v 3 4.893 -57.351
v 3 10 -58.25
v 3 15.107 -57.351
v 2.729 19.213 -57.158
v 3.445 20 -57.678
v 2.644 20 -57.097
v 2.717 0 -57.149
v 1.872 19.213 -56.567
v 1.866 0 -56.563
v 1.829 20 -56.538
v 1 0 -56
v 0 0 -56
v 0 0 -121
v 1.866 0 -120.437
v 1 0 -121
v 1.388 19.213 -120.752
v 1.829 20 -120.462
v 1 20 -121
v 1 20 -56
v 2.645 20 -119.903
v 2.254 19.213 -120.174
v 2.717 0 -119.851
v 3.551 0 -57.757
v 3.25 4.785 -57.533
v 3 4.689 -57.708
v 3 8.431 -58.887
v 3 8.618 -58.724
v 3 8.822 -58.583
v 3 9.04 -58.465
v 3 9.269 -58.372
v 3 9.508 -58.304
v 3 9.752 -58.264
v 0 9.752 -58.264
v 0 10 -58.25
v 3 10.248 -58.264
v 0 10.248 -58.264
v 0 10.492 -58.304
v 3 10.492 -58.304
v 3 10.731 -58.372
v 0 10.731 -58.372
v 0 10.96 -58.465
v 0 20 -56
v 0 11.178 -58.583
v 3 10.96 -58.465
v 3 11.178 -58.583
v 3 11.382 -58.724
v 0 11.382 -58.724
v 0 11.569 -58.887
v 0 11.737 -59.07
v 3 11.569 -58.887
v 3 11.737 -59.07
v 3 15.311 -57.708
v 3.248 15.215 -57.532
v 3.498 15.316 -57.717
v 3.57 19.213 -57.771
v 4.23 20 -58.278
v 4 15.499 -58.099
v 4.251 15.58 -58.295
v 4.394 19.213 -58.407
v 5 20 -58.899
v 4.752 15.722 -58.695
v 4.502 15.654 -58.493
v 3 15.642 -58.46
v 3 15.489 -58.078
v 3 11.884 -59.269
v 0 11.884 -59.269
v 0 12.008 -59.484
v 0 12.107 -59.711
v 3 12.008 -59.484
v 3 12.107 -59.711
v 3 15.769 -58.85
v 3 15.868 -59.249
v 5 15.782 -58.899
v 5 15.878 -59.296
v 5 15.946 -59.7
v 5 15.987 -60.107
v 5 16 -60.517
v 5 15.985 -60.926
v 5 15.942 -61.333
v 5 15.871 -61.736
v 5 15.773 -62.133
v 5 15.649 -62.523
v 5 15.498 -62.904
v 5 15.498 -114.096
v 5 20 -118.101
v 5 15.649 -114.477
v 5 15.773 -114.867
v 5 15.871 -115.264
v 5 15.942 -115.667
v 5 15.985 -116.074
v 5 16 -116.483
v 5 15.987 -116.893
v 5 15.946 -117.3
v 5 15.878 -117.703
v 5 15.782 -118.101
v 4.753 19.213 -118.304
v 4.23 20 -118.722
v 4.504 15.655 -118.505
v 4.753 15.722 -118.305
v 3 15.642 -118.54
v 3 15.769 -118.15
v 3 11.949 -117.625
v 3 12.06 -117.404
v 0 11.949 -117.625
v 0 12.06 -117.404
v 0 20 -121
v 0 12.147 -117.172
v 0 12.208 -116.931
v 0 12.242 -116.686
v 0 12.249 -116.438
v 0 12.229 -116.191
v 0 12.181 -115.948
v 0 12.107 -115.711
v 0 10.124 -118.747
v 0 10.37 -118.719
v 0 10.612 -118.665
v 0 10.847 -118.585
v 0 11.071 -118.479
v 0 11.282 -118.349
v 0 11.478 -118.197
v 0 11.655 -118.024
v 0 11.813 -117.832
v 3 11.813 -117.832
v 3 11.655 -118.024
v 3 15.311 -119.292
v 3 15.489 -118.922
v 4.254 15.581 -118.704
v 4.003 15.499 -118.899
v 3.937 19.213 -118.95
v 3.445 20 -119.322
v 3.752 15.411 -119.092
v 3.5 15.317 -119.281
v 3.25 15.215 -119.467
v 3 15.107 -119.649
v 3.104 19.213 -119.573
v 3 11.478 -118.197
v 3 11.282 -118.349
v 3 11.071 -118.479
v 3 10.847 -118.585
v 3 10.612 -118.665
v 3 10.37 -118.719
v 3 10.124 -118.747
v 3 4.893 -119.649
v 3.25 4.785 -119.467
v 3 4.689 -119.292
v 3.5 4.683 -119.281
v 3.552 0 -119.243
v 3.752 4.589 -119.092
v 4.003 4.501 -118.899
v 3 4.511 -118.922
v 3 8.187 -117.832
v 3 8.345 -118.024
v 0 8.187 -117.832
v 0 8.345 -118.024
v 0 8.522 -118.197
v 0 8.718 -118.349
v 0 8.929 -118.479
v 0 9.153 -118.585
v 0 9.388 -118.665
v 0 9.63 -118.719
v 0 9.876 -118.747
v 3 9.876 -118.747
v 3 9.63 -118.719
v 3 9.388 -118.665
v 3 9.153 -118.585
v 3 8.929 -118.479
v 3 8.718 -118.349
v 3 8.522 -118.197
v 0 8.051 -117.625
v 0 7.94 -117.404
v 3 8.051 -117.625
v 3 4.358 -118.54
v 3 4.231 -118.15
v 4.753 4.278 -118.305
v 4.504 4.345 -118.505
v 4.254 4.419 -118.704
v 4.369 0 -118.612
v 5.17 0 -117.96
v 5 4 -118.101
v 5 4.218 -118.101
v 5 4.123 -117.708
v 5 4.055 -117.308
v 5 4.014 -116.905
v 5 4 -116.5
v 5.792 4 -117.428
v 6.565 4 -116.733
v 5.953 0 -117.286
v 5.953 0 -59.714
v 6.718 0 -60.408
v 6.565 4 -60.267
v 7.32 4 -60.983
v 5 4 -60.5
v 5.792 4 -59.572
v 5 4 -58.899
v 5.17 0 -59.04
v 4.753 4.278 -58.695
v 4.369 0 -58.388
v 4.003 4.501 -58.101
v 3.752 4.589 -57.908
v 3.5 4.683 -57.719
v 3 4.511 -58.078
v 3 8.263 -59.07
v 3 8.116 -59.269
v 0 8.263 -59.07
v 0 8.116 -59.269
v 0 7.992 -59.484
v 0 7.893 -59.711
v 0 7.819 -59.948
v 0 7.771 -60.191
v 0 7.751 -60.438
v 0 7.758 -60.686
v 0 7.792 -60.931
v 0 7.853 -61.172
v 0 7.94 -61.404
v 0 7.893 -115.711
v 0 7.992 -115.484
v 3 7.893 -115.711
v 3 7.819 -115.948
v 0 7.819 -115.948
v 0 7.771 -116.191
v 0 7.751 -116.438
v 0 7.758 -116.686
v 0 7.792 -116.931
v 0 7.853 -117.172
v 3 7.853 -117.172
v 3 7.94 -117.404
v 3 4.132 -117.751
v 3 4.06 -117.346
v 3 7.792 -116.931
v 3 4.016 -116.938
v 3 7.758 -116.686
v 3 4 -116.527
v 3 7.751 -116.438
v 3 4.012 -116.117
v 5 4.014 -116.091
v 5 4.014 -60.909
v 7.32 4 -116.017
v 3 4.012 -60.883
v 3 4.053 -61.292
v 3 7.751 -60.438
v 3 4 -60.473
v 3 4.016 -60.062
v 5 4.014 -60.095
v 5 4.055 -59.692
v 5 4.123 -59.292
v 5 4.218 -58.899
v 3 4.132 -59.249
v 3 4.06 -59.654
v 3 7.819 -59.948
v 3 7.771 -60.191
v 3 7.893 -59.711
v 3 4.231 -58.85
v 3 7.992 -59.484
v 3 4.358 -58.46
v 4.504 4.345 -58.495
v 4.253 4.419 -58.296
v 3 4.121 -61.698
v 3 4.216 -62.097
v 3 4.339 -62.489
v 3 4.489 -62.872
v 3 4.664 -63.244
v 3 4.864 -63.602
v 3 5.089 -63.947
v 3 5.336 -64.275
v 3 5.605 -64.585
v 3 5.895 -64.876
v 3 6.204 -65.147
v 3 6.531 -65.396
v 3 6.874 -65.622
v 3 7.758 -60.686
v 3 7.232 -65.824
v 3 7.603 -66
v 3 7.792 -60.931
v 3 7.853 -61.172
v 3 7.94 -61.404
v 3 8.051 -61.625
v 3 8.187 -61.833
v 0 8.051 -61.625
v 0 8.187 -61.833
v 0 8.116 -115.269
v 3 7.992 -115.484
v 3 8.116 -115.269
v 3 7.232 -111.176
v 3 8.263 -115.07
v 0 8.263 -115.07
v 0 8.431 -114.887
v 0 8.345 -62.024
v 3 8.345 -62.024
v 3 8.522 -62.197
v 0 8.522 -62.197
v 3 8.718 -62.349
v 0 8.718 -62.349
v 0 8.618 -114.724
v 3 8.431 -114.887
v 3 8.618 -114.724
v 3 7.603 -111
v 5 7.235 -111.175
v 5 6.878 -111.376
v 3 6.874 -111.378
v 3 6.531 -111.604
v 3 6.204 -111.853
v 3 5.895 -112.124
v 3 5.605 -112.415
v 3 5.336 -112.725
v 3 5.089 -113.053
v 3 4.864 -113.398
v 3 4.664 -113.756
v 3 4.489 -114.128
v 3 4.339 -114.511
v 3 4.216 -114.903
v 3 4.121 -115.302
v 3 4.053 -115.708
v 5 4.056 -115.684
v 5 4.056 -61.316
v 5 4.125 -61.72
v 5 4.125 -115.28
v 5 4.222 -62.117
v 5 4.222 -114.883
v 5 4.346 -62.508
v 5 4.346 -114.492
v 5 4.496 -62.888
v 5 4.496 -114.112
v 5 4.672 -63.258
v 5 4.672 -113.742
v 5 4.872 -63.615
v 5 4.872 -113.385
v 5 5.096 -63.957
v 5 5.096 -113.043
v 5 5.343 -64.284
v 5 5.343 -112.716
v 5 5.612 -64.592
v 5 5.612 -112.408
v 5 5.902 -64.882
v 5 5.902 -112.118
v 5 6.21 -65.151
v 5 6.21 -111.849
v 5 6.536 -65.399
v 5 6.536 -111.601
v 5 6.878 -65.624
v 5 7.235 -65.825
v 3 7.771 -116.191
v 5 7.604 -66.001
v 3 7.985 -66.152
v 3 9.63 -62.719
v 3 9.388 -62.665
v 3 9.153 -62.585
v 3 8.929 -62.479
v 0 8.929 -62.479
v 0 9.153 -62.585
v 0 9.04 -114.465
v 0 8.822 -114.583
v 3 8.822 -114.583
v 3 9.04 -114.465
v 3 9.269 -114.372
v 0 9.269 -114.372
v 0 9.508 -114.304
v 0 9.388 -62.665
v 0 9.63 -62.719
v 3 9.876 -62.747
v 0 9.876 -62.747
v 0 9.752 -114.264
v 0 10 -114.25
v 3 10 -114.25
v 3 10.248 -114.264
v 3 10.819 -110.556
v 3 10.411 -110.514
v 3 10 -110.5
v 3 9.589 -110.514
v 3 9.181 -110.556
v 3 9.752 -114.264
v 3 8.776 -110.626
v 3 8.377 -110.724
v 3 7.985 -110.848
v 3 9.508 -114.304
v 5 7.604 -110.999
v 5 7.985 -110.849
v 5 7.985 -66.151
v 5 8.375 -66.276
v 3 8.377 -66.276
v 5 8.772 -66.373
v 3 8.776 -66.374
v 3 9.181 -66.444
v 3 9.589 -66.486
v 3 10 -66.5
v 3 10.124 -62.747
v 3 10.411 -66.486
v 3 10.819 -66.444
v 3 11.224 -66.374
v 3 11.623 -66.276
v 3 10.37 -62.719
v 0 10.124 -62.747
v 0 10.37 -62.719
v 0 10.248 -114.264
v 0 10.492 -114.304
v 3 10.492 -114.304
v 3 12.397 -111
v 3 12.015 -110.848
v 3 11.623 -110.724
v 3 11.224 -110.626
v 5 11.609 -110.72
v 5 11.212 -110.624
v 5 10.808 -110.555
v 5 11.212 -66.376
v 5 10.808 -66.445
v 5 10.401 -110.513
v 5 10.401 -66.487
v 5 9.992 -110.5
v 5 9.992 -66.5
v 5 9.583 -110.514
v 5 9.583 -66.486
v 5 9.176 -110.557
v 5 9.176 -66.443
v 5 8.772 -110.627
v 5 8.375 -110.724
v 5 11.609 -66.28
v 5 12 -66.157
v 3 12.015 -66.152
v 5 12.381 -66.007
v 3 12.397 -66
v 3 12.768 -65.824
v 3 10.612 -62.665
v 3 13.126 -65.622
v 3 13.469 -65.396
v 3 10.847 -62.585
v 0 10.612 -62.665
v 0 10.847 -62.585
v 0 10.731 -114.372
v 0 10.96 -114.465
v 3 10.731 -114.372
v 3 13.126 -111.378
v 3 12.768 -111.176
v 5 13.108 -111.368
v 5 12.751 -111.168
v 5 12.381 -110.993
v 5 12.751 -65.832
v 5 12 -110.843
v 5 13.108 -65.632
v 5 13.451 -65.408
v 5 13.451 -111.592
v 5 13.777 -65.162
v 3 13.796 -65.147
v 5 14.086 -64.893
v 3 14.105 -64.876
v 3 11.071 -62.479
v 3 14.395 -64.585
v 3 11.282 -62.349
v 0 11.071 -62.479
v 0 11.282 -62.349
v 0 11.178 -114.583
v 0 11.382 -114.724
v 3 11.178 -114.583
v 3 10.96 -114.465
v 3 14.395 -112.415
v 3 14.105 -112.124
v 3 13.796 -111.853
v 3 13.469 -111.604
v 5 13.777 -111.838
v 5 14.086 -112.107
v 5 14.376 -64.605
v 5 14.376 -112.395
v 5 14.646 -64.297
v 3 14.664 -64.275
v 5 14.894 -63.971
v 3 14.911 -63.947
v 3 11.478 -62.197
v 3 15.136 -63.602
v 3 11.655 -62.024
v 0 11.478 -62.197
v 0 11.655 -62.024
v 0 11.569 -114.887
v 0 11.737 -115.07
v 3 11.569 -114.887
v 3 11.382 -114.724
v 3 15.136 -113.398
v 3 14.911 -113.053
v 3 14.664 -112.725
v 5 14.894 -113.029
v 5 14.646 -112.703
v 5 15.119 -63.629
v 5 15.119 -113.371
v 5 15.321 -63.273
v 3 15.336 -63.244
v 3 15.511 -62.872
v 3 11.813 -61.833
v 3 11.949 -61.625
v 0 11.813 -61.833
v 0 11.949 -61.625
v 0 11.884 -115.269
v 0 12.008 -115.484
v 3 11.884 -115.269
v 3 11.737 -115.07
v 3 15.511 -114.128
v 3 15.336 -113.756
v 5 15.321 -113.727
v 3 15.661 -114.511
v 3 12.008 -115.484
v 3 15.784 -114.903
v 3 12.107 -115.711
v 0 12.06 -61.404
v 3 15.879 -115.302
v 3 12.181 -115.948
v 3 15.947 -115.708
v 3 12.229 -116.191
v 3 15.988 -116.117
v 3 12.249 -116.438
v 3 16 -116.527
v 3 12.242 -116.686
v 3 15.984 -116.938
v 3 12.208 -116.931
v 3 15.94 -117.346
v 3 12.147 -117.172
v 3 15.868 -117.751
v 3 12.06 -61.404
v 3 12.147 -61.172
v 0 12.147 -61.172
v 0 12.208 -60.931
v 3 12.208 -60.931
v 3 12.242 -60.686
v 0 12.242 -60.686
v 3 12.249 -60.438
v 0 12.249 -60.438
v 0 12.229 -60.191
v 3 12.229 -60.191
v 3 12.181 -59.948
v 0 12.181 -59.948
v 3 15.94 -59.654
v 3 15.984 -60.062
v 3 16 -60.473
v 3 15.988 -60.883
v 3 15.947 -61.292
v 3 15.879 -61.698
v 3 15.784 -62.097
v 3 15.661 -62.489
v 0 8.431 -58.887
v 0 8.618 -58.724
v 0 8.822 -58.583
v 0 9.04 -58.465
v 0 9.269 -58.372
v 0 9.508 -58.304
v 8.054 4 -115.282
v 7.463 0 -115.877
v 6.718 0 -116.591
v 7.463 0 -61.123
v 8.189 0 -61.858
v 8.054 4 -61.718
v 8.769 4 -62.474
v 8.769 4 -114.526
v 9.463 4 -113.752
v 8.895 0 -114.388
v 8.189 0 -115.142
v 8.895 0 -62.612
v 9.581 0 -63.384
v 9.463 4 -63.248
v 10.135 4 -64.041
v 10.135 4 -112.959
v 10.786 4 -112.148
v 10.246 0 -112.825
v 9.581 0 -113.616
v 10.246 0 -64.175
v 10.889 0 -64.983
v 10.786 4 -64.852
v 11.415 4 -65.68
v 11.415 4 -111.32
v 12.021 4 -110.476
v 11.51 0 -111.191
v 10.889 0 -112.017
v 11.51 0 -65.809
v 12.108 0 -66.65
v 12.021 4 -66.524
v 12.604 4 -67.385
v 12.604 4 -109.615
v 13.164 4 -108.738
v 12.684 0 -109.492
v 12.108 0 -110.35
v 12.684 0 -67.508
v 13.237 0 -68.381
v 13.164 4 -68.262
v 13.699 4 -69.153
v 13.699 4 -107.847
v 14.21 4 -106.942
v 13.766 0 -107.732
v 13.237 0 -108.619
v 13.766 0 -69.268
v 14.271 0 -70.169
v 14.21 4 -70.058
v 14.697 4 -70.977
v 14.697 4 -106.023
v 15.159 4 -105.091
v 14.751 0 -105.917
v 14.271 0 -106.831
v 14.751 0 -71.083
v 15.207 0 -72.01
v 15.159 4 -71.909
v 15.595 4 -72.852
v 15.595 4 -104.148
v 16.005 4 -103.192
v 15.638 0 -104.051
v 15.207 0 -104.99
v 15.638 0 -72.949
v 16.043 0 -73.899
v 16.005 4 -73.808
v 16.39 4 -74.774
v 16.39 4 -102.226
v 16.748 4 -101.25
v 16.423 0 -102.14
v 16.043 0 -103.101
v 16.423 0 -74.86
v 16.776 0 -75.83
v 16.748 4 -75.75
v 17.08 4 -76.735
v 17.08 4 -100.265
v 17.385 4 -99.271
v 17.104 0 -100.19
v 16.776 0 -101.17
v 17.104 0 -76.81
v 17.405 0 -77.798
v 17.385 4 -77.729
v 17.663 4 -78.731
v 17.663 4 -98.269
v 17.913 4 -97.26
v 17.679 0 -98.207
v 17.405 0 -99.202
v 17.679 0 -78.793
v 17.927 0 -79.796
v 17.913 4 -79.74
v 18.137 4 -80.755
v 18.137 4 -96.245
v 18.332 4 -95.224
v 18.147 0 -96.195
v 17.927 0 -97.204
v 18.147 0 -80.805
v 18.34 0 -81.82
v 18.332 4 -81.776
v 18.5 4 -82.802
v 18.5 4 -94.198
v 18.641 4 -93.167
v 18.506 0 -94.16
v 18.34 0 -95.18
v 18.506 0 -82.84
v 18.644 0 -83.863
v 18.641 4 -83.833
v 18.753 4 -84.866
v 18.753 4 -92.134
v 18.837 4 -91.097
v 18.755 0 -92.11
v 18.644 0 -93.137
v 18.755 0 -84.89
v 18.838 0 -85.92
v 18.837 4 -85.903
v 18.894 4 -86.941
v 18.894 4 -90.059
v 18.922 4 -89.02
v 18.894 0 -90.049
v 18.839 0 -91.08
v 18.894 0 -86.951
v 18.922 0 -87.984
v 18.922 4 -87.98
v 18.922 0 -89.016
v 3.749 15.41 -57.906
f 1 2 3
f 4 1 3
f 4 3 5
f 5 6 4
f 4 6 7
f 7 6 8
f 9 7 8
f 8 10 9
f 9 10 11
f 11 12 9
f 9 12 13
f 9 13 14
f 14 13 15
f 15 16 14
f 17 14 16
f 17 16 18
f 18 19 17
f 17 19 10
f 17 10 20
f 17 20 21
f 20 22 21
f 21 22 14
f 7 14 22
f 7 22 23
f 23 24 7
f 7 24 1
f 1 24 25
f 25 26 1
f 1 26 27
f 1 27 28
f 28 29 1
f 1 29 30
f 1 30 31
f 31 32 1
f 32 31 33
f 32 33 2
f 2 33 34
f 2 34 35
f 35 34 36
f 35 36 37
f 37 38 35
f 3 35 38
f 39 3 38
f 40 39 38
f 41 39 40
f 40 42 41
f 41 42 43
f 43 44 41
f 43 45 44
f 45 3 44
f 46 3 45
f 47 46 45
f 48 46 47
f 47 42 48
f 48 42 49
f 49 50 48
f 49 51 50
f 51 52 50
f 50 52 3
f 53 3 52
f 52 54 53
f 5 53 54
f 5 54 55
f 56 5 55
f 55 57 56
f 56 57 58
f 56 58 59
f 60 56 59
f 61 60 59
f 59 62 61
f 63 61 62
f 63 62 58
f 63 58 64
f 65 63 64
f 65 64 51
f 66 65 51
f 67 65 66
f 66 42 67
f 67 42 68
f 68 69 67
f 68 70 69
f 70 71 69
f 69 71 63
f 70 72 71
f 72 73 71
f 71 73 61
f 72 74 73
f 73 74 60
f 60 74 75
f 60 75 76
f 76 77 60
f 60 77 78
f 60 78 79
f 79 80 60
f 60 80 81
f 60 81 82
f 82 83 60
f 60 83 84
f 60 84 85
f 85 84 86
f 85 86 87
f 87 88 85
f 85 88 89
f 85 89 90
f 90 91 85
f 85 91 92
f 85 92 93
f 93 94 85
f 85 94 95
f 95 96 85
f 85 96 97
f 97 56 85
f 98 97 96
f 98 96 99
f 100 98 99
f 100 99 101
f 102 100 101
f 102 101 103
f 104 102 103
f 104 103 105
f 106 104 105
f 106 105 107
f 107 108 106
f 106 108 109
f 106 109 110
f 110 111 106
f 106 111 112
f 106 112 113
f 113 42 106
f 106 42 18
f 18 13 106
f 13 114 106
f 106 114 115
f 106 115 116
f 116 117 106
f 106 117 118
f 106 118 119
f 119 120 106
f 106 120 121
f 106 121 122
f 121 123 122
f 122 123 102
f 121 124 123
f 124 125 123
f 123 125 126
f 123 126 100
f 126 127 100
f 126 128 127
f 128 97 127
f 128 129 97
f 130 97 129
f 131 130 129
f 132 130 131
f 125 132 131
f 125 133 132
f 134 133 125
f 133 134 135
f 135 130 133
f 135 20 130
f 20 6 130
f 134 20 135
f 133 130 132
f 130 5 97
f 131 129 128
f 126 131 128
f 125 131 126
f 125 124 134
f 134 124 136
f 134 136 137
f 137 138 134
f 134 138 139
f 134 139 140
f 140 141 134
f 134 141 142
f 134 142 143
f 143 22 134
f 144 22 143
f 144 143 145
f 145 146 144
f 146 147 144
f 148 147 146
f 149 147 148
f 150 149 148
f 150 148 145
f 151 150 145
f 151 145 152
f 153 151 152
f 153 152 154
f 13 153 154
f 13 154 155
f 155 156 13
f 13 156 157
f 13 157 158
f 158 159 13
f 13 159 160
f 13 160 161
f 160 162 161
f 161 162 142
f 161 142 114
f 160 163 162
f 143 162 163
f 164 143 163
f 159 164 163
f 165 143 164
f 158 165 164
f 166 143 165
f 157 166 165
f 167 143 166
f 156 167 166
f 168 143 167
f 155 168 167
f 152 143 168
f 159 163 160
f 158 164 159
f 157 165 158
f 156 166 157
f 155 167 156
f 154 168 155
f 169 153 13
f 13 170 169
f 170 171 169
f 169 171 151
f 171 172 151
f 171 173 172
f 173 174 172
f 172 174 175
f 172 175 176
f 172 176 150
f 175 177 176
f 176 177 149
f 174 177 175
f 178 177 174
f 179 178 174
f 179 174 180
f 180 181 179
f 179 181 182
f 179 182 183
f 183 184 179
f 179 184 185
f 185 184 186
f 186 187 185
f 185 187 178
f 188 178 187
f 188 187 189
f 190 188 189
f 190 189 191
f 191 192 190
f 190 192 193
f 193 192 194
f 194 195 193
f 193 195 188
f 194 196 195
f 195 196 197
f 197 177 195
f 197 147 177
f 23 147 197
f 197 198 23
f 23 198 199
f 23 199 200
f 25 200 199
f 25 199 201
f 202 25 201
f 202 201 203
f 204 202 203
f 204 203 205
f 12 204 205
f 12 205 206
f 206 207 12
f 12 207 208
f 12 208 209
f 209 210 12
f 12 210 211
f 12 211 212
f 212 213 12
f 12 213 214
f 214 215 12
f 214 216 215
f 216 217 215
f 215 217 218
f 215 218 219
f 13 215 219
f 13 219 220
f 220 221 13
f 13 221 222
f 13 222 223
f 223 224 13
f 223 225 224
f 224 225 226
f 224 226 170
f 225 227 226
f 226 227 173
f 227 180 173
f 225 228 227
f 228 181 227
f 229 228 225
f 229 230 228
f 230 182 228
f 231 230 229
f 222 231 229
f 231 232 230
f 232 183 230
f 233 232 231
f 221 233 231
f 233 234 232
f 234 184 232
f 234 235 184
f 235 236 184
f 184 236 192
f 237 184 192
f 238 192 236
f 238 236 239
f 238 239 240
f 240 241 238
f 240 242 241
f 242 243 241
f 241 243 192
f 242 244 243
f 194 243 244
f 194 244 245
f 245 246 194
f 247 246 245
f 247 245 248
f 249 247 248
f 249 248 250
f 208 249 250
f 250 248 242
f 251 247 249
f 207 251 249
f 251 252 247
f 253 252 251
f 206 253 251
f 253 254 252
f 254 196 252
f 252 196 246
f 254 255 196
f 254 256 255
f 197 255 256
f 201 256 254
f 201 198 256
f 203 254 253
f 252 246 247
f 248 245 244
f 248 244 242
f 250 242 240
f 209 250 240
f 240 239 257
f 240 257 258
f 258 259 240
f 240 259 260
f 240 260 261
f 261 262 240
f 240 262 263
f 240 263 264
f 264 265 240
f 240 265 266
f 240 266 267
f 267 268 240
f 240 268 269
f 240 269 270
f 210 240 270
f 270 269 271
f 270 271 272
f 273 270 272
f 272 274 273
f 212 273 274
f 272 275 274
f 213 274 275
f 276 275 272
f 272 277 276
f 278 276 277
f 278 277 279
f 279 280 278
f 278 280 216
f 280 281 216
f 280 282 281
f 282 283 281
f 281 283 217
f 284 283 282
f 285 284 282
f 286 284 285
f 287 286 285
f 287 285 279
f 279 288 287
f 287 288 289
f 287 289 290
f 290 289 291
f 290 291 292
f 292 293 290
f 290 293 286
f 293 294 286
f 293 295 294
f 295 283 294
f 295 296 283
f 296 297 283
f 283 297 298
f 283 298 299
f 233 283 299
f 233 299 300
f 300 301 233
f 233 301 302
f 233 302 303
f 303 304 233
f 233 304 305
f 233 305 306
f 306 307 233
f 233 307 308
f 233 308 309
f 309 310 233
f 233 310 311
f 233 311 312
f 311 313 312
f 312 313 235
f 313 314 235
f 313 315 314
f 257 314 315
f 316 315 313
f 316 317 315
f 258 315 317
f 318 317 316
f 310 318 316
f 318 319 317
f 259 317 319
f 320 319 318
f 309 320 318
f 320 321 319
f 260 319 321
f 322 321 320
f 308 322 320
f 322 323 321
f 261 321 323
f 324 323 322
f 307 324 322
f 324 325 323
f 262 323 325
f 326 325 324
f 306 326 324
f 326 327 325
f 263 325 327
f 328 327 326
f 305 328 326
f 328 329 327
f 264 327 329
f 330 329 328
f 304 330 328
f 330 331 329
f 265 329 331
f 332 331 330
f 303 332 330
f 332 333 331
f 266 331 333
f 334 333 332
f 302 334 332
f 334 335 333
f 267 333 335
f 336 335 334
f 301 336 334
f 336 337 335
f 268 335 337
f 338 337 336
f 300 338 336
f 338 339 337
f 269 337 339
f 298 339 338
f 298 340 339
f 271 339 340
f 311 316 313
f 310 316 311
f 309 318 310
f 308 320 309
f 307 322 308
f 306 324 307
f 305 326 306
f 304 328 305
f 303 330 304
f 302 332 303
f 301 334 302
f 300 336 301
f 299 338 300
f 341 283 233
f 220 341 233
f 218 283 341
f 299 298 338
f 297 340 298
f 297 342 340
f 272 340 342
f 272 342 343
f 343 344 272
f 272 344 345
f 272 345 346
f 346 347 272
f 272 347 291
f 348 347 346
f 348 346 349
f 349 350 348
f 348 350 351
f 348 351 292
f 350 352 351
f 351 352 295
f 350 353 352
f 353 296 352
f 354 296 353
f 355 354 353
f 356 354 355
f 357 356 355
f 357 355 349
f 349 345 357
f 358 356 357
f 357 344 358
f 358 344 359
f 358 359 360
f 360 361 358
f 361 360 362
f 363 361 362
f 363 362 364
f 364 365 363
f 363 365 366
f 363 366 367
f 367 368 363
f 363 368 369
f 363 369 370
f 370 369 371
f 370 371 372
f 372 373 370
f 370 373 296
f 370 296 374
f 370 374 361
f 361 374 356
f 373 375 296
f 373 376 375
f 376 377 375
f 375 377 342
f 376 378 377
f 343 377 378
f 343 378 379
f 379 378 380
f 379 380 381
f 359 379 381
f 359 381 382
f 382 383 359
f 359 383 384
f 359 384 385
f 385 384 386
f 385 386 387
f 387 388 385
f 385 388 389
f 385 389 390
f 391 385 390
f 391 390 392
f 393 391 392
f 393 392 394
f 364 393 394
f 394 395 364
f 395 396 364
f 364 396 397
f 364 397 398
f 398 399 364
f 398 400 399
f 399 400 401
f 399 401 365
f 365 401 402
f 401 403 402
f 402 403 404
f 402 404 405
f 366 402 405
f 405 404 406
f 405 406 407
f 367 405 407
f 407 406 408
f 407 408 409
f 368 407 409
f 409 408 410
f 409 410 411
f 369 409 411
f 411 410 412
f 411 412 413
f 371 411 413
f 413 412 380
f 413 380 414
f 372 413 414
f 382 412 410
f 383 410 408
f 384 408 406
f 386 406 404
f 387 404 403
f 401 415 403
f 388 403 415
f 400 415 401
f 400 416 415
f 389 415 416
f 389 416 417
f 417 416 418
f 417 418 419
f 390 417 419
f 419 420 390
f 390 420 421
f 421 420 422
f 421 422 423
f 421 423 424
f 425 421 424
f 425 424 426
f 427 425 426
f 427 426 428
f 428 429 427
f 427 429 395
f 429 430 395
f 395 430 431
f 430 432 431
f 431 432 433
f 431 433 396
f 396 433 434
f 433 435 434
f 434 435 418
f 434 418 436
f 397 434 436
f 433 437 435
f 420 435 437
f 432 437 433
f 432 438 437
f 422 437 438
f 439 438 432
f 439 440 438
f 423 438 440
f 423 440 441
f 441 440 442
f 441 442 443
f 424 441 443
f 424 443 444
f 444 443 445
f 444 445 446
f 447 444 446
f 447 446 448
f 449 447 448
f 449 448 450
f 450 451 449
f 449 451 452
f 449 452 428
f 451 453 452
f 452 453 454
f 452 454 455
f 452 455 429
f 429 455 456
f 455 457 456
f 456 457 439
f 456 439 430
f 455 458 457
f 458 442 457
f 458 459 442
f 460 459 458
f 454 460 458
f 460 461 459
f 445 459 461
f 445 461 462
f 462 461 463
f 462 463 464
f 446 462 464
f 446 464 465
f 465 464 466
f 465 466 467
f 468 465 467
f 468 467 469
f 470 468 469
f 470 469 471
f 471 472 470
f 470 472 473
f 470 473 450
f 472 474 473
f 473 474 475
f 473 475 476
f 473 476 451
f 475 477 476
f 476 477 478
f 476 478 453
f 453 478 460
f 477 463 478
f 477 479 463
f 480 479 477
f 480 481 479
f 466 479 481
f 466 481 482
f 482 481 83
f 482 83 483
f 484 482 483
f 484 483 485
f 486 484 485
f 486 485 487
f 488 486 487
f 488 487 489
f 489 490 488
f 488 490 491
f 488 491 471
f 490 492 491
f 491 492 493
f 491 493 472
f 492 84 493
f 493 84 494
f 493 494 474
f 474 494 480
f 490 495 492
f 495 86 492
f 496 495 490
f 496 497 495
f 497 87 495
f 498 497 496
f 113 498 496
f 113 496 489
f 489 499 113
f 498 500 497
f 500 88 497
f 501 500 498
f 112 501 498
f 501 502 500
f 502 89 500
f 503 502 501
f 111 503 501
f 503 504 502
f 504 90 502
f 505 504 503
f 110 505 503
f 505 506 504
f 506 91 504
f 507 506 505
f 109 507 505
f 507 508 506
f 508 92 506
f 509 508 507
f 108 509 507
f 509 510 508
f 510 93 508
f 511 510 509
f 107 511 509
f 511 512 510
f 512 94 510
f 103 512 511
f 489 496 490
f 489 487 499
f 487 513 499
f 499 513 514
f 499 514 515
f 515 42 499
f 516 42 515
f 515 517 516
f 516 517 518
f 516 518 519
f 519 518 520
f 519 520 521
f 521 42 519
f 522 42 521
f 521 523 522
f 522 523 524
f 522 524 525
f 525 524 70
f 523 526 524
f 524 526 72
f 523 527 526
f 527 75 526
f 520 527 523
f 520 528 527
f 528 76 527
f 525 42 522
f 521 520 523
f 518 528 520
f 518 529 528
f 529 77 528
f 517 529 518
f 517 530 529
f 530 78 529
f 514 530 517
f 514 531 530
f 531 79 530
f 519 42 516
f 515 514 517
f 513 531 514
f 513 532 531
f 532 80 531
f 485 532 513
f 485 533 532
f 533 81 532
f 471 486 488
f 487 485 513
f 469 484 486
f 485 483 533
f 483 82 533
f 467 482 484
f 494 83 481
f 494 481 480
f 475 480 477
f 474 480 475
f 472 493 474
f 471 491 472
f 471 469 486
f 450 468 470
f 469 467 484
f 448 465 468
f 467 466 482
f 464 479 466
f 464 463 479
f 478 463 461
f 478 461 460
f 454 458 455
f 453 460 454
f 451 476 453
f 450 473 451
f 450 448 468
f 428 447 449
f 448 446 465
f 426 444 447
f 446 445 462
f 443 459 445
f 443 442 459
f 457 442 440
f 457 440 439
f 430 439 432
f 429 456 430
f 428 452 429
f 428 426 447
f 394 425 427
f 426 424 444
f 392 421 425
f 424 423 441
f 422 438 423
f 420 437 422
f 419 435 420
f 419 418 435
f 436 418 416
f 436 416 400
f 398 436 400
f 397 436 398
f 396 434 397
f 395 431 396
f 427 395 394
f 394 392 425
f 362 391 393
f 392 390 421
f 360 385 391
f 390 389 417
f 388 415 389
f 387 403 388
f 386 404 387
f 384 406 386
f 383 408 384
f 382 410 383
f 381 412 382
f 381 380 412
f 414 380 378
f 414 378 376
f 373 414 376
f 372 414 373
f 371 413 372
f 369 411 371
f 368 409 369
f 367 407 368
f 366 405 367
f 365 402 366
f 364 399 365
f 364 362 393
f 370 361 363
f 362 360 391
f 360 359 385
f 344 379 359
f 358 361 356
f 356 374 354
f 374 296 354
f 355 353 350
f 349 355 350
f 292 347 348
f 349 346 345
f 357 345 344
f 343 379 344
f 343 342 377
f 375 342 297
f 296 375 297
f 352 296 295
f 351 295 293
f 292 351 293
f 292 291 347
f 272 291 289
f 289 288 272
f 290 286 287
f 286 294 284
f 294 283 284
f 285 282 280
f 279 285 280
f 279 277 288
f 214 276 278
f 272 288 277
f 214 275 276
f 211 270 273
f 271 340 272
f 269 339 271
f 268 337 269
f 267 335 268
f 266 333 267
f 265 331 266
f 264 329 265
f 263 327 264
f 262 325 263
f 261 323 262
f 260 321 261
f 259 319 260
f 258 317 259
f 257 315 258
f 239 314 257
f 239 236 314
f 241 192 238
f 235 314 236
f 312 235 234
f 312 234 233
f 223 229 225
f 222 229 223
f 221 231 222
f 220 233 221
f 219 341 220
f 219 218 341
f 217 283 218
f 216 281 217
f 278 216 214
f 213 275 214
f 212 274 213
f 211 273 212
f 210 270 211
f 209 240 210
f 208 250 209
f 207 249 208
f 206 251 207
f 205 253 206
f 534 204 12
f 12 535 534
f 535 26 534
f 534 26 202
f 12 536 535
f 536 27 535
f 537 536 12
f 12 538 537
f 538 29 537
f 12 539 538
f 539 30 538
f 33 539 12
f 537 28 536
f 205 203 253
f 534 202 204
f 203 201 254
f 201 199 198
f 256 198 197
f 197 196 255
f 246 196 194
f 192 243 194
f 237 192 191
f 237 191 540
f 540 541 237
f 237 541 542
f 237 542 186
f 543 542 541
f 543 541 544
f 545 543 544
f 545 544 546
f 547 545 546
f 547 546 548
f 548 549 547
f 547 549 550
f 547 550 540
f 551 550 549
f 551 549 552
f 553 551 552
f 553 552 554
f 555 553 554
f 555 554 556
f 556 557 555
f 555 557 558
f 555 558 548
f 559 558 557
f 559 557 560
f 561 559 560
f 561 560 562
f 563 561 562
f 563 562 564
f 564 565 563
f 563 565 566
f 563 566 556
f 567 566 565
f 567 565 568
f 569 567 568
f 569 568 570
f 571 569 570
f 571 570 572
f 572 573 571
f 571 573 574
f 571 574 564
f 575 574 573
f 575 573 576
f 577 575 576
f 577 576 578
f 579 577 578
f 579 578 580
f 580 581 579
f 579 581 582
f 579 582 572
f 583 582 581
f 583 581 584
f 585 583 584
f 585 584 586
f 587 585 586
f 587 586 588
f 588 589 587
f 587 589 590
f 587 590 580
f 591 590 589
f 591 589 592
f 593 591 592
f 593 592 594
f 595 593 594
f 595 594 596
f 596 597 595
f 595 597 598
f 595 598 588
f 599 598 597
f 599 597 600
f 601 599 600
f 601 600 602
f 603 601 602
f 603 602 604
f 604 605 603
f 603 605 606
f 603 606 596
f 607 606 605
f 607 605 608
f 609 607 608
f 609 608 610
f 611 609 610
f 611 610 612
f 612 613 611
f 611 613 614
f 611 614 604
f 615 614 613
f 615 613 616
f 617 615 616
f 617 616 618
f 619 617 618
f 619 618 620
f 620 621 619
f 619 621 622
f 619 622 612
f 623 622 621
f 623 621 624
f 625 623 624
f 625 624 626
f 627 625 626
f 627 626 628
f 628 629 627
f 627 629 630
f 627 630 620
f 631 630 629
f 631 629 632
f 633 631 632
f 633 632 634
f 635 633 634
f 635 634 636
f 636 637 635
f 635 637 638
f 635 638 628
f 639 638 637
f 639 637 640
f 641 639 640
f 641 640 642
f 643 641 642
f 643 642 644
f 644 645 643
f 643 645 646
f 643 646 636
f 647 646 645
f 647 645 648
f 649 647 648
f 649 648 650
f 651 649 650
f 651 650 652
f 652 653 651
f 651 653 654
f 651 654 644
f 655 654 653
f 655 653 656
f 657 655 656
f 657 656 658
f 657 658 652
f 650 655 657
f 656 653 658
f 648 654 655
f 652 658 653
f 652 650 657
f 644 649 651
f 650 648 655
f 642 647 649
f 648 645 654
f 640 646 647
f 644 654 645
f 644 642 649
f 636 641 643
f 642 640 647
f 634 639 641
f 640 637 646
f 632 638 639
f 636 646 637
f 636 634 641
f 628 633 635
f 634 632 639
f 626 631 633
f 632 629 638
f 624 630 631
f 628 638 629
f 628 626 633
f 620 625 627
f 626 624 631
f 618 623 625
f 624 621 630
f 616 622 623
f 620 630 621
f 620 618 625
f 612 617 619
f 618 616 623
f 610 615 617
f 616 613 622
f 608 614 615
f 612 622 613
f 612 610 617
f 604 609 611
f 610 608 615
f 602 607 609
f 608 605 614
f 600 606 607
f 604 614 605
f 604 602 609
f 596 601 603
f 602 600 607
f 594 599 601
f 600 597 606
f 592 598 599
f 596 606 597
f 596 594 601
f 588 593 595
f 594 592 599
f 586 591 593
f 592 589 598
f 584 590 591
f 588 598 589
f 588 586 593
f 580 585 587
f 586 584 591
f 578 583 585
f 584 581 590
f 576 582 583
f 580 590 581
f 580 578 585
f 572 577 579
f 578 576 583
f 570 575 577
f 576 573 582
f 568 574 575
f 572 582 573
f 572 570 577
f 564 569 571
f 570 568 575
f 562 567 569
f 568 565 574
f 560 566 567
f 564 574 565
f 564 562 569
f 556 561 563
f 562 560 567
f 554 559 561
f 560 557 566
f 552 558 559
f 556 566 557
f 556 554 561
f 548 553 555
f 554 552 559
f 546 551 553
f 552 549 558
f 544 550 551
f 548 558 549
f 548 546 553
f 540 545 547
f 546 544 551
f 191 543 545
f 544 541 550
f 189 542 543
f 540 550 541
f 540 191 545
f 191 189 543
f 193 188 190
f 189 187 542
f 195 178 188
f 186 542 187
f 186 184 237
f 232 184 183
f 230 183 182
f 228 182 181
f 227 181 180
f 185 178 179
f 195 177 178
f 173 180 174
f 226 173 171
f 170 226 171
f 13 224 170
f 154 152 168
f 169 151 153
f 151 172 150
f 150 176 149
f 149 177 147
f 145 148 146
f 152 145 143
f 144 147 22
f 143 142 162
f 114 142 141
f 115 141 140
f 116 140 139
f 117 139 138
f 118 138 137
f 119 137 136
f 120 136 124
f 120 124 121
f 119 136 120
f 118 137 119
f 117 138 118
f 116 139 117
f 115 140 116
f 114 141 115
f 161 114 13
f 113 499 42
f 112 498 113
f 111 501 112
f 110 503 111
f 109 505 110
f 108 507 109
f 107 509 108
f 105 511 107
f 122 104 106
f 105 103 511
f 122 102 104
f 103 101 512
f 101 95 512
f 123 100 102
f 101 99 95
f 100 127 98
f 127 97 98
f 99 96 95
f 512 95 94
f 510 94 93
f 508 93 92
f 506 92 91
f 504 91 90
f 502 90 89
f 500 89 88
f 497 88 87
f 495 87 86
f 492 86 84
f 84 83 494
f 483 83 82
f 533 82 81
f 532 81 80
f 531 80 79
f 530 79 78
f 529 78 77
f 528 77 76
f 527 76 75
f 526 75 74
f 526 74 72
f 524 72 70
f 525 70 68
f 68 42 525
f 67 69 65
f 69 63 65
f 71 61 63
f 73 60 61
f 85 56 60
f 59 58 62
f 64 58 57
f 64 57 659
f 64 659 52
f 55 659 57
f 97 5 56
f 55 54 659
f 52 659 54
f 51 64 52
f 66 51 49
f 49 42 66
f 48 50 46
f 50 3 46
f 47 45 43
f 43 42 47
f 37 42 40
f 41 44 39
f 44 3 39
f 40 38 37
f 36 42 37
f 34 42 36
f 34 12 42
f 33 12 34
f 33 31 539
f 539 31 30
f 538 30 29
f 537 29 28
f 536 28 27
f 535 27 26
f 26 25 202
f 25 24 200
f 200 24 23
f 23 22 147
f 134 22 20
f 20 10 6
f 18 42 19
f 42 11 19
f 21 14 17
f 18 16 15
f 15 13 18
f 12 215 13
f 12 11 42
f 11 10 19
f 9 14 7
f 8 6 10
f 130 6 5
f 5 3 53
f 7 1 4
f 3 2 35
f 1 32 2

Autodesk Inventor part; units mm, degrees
ref_plane "YZ Plane" through (0, 0, 0) normal (1, 0, 0) x (0, 1, 0)
ref_plane "XZ Plane" through (0, 0, 0) normal (0, 1, 0) x (-1, 0, 0)
ref_plane "XY Plane" through (0, 0, 0) normal (0, 0, 1) x (1, 0, 0)
sketch "Эскиз1" plane through (0, 0, 0) normal (0, 1, 0) x (-1, 0, 0)
  line L0 (0, -56) -> (0, -121)
  line L1 (0, -56) -> (-1, -56)
  line L2 (0, -56) -> (1, -56) construction
  line L3 (0, -121) -> (-1, -121)
  line L4 (0, -121) -> (1, -121) construction
  arc A0 (-1, -56) -> (-1, -121) centre (19.5, -88.5) ccw
  dimension "d5" = 65
  dimension "d6" = 1
  dimension "d7" = 180
  dimension "d8" = 1
  dimension "d9" = 180
extrude "Выдавливание1" add sketch "Эскиз1" along normal blind 4
sketch "Эскиз2" plane through (0, 4, 0) normal (0, 1, 0) x (1, 0, 0)
  line L0 (0, 121) -> (0, 56) projected
  line L1 (0, 56) -> (0, 121)
  line L2 (0, 121) -> (1, 121)
  line L3 (0, 56) -> (1, 56)
  arc A0 (1, 56) -> (1, 121) centre (-19.5, 88.5) ccw projected
  line L4 (5, 58.8985) -> (5, 118.1015)
  arc A1 (1, 56) -> (5, 58.8985) centre (-19.5, 88.5) ccw
  arc A2 (5, 118.1015) -> (1, 121) centre (-19.5, 88.5) ccw
  point P0 (0, 0)
extrude "Выдавливание2" add sketch "Эскиз2" along normal blind 16 contours L2 A0 L4 L3 L0
sketch "Эскиз3" plane through (0, 0, -121) normal (-1, 0, 0) x (0, 0, 1)
  line L0 (65, 0) -> (0, 0) projected
  line L1 (32.5, 0) -> (32.5, 20)
  line L2 (0, 20) -> (65, 20) projected
  line L3 (4.5, 10) -> (60.5, 10)
  circle A0 centre (4.5, 10) radius 2.25
  circle A1 centre (60.5, 10) radius 2.25
  point P0 (121, 0)
  dimension "d17" = 4.5
  dimension "d18" = 4.5
extrude "Выдавливание3" cut sketch "Эскиз3" against normal blind 5
sketch "Эскиз4" plane through (5, 4, -58.8985) normal (1, 0, 0) x (0, 0, -1)
  arc A0 (0, 4.4196) -> (0, 7.5804) centre (1.6015, 6) ccw projected
  circle A1 centre (1.6015, 6) radius 6
  line L0 (59.203, 0) -> (0, 0) projected
  arc A2 (59.203, 7.5804) -> (59.203, 4.4196) centre (57.6015, 6) ccw projected
  circle A3 centre (57.6015, 6) radius 6
  point P0 (-58.8985, -4)
extrude "Выдавливание4" cut sketch "Эскиз4" against normal blind 2
properties part number "05-01-Кронштейн низ защита (update)"
